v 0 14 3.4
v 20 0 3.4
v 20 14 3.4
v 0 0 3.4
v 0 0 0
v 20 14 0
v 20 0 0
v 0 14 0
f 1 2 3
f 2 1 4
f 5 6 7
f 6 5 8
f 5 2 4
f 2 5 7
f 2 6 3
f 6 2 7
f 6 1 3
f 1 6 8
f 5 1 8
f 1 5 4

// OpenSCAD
/* Warning, this is a very basic generator with a lot of approximation 
input data : [PQFP, U7X, 20x14x3.4mm, 80, , A, C04-00280A]
generated by com.zoubworld.electronics.cad.model3d.Basic
Date : Sun Feb 15 10:50:48 CET 2026
*/

//body
color("black")
translate([0,0,0])
cube([20.0,14.0,3.4], center=false);
